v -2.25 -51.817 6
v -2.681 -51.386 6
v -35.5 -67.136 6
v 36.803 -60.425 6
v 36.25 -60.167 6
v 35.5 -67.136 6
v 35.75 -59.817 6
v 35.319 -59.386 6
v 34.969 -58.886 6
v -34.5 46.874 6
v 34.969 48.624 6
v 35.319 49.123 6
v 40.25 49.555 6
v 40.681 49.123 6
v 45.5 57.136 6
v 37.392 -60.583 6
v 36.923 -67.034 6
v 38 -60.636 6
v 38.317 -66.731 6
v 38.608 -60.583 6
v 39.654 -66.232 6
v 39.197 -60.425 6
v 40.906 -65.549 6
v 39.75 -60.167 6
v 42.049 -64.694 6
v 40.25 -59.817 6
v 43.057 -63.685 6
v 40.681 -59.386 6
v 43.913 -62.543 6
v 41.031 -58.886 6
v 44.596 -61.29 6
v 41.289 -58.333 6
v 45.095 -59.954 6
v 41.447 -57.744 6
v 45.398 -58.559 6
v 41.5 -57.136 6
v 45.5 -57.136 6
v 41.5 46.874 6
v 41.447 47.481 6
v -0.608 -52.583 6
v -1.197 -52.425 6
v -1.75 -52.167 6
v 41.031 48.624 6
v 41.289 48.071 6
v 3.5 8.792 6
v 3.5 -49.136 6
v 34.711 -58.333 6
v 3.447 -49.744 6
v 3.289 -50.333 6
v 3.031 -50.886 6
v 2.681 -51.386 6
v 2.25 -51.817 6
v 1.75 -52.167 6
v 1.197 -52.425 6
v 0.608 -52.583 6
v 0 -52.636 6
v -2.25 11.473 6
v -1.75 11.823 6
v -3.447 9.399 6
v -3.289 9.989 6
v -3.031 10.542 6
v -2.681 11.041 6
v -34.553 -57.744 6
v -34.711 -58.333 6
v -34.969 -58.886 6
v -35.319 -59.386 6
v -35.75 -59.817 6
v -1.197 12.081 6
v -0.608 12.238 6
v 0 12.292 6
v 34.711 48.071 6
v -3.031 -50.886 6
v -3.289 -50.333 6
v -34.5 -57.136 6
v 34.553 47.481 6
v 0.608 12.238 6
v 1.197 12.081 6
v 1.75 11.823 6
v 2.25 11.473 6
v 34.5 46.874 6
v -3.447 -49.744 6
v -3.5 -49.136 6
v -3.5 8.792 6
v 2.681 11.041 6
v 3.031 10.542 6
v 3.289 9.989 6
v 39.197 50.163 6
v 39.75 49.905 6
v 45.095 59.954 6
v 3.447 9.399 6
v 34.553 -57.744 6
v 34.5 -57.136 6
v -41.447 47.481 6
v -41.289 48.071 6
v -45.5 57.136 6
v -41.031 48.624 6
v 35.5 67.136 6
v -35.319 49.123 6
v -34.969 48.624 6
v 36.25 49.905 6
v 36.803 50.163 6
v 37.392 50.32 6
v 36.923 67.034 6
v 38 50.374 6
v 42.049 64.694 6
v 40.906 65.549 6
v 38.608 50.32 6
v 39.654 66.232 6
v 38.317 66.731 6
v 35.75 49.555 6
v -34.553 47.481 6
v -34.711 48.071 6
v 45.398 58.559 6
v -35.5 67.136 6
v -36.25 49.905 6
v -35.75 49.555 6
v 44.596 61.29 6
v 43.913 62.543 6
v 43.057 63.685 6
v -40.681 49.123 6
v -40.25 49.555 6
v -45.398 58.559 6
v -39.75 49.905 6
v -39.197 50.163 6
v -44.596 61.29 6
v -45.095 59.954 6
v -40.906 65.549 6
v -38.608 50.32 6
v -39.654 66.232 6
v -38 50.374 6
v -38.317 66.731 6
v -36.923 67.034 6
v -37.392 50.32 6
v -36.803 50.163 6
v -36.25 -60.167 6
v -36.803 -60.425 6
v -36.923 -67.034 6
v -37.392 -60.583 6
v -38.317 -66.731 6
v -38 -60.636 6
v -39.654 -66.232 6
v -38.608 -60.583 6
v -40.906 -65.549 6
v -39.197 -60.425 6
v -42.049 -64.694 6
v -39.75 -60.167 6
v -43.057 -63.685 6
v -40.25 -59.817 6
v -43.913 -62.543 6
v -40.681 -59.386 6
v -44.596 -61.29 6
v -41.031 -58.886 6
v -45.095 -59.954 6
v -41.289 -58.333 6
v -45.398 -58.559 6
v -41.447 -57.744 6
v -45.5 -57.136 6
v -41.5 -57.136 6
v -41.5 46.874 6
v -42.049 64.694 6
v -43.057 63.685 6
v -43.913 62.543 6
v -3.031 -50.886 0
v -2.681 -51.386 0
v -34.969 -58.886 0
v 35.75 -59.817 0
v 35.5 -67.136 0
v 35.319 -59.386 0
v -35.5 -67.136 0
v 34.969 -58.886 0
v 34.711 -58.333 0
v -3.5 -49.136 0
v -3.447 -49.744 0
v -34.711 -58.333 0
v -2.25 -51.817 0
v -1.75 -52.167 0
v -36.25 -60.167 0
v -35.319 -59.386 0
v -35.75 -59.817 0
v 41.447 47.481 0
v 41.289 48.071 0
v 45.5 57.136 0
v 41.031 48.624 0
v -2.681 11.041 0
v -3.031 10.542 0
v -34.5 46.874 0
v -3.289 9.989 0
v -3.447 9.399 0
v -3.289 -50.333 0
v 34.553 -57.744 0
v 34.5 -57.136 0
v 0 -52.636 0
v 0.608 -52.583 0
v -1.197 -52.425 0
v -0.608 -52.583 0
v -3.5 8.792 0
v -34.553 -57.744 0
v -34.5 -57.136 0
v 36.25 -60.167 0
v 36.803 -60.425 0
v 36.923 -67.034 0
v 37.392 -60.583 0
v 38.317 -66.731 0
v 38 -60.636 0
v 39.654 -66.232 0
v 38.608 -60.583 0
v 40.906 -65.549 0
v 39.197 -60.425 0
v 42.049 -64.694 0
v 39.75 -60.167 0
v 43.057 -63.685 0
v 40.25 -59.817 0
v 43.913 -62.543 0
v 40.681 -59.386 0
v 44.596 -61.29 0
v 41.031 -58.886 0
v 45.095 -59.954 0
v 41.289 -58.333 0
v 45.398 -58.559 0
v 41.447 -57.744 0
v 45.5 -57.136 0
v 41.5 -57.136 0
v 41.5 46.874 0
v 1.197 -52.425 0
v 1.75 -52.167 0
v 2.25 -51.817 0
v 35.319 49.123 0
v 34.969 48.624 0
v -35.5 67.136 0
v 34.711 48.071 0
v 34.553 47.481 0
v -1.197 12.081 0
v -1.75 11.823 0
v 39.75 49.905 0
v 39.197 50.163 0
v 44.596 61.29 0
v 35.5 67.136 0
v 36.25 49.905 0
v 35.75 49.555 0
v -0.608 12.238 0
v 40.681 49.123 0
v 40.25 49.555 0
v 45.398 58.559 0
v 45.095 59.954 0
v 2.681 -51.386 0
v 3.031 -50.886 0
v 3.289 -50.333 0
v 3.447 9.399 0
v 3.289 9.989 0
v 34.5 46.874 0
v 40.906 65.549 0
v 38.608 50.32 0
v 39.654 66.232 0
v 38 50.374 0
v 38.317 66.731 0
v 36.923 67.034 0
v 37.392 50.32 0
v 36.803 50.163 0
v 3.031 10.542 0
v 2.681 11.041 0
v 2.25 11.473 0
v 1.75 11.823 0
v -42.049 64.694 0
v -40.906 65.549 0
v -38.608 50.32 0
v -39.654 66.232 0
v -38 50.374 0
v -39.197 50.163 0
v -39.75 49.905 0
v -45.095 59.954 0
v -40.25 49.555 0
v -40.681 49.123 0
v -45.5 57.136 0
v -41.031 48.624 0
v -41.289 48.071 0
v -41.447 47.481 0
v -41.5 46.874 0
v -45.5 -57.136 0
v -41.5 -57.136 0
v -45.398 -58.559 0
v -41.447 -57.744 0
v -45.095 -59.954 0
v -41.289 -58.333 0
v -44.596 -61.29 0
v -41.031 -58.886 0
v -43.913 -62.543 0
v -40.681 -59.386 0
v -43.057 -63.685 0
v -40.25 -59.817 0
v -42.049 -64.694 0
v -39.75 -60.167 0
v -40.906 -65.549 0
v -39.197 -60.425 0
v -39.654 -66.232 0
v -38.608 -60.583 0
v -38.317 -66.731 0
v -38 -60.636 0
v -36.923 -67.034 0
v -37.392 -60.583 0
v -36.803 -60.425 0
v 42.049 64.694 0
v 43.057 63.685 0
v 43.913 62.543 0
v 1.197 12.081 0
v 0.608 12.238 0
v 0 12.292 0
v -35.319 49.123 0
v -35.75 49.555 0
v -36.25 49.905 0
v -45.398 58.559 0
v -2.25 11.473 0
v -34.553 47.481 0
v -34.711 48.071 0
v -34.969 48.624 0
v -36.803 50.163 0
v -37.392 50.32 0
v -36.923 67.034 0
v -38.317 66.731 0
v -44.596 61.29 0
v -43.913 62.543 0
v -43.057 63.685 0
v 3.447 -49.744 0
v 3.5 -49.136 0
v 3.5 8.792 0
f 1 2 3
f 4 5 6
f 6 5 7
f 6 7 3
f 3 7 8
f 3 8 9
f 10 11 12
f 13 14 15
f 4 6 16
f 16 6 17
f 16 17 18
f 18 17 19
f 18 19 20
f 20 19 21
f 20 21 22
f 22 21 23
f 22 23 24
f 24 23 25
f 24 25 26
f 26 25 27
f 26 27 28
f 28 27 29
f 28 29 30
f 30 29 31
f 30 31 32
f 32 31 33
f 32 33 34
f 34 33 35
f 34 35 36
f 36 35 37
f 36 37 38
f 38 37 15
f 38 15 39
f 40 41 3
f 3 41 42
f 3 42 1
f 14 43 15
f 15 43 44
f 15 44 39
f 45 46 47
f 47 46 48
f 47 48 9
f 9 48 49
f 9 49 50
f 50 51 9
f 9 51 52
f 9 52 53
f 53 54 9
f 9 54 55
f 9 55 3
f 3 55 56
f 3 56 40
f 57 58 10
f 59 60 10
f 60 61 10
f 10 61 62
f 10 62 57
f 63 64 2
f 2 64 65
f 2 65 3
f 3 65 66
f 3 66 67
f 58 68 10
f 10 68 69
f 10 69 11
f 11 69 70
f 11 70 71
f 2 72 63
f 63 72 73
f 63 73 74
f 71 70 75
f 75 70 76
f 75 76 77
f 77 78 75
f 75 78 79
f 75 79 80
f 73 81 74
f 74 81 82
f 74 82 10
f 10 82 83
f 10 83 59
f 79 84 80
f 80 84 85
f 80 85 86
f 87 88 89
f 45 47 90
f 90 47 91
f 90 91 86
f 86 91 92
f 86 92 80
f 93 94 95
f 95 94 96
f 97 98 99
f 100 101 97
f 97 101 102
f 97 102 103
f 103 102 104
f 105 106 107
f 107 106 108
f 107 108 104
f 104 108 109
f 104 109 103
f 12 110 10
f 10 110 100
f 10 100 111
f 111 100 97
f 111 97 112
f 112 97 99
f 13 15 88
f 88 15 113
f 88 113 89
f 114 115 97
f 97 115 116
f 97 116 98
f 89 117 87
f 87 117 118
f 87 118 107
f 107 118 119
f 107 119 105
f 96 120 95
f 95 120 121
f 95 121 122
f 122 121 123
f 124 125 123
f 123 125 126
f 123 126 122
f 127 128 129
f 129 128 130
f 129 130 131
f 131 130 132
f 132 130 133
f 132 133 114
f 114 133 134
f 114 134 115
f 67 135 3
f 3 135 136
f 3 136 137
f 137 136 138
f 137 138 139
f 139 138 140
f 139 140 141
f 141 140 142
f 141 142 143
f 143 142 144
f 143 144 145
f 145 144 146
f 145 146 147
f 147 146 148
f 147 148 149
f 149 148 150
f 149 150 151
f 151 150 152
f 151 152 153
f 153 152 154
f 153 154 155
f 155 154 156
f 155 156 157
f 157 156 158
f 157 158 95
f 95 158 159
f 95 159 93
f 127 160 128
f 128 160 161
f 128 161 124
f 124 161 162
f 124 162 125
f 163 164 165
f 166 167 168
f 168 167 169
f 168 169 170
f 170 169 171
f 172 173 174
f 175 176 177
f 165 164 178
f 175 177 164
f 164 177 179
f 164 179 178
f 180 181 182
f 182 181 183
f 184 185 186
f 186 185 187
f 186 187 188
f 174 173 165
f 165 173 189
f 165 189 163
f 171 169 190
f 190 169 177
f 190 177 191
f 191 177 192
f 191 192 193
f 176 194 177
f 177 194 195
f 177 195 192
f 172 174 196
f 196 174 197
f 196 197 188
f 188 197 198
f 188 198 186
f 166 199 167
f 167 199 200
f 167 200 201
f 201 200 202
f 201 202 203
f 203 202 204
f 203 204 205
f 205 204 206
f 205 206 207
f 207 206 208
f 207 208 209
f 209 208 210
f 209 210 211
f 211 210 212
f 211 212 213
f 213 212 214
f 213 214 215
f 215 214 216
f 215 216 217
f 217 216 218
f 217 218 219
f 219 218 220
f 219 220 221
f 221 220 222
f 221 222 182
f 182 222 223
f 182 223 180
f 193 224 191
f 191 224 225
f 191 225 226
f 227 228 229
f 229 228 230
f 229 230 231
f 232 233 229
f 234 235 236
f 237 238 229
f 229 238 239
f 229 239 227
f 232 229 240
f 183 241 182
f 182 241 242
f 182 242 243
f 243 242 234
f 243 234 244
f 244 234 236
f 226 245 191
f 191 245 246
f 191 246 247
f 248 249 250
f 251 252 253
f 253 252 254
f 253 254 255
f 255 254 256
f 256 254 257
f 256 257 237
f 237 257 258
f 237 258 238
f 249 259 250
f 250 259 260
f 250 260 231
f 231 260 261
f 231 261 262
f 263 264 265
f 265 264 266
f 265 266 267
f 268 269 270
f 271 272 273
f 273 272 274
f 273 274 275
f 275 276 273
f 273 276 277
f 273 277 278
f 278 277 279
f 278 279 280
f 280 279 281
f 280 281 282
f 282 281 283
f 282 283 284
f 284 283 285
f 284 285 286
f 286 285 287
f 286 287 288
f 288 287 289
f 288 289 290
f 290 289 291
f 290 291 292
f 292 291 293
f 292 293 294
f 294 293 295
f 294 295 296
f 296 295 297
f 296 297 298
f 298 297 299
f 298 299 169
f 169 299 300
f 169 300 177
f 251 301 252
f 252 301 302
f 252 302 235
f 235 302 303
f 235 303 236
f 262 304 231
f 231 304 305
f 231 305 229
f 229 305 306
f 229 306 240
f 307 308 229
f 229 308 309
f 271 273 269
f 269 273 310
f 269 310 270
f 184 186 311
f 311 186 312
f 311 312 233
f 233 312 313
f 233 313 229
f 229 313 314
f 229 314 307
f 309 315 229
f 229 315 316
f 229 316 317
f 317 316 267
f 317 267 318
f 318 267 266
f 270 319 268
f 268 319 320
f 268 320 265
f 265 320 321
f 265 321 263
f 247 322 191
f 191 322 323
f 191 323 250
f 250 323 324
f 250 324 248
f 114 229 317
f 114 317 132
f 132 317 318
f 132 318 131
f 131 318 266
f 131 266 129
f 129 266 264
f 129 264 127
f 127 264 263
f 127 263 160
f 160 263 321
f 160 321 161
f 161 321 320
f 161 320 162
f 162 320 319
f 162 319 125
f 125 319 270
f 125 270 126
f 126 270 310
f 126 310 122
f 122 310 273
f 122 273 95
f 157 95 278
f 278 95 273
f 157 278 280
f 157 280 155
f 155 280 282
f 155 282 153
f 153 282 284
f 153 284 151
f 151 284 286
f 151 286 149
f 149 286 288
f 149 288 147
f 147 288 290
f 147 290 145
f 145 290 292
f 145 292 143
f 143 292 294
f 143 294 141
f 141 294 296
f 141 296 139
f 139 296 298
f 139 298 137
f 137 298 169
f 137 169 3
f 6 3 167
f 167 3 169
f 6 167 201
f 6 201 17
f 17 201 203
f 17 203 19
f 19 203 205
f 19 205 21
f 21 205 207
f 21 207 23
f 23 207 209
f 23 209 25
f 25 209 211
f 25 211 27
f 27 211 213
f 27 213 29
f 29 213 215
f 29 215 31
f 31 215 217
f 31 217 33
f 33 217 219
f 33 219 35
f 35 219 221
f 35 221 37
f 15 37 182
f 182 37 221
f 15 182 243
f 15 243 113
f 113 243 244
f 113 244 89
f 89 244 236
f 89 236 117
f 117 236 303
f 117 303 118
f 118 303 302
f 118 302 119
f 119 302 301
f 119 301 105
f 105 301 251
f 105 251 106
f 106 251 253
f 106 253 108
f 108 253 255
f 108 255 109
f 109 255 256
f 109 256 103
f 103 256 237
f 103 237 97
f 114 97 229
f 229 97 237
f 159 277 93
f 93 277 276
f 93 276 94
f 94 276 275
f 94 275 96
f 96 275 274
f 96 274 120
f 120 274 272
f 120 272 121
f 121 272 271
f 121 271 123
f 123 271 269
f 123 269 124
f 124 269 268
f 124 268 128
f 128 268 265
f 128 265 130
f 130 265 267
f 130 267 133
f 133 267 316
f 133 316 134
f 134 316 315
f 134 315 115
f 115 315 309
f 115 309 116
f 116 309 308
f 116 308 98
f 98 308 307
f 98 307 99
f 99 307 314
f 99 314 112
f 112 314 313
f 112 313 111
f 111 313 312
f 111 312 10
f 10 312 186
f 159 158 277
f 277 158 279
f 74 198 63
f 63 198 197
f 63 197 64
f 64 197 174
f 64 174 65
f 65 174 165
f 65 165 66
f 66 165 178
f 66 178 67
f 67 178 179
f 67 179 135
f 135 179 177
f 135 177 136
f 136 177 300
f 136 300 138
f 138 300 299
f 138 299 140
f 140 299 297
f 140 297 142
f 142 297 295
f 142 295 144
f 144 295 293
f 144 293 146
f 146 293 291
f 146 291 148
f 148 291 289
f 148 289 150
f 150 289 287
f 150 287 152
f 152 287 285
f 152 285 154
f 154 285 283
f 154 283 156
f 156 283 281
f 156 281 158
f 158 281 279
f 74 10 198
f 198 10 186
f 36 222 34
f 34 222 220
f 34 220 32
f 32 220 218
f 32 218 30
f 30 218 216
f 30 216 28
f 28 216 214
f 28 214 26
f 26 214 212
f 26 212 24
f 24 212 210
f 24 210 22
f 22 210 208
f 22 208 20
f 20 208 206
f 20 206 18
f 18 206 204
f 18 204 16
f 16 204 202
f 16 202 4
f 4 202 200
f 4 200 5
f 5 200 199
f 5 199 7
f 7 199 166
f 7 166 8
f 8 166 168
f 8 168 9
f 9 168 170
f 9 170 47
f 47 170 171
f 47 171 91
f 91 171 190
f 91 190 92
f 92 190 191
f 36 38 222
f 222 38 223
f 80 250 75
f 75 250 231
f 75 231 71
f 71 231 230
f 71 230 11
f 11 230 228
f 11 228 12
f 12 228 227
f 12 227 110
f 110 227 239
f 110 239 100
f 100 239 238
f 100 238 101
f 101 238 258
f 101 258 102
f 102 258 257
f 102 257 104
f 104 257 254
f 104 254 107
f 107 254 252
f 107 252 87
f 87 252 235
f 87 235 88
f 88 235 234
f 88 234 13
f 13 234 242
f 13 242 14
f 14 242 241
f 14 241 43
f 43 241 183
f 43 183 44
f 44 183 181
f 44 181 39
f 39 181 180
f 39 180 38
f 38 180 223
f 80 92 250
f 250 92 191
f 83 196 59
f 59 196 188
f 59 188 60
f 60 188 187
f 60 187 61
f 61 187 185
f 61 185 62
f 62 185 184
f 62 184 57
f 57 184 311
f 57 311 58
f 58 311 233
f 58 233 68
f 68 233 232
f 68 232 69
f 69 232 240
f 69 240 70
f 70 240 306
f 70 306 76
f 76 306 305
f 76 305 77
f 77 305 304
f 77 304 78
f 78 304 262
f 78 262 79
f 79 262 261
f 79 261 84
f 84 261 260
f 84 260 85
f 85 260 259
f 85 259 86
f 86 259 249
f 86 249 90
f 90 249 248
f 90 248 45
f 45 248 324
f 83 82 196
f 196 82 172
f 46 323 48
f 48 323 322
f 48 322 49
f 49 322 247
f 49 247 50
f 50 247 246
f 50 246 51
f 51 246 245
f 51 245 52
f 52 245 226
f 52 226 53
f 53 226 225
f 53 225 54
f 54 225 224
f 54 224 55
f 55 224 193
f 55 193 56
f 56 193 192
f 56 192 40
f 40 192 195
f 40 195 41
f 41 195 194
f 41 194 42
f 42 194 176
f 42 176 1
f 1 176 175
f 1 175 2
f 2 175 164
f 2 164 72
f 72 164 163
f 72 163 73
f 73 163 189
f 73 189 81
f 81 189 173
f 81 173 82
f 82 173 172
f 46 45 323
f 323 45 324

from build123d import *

# Parameters (mm, degrees)
BOSS_EXTRUDE1_DEPTH = 6


with BuildPart() as part:
    # Sketch1 → Boss-Extrude1 (new body)
    with BuildSketch(Plane.XY):
        with BuildLine():
            Line((-35.5, -67.136177844), (35.5, -67.136177844))
            ThreePointArc((35.5, -67.136177844), (42.571067812, -64.207245656), (45.5, -57.136177844))
            Line((45.5, -57.136177844), (45.5, 57.136177844))
            ThreePointArc((45.5, 57.136177844), (42.571067812, 64.207245656), (35.5, 67.136177844))
            Line((35.5, 67.136177844), (-35.5, 67.136177844))
            ThreePointArc((-35.5, 67.136177844), (-42.571067812, 64.207245656), (-45.5, 57.136177844))
            Line((-45.5, 57.136177844), (-45.5, -57.136177844))
            ThreePointArc((-45.5, -57.136177844), (-42.571067812, -64.207245656), (-35.5, -67.136177844))
        make_face()
        with BuildLine():
            Line((-34.5, 46.873645637), (-34.5, -57.136177844))
            ThreePointArc((-34.5, -57.136177844), (-38, -60.636177844), (-41.5, -57.136177844))
            Line((-41.5, -57.136177844), (-41.5, 46.873645637))
            ThreePointArc((-41.5, 46.873645637), (-38, 50.373645637), (-34.5, 46.873645637))
        make_face(mode=Mode.SUBTRACT)
        with BuildLine():
            Line((34.5, -57.136177844), (34.5, 46.873645637))
            ThreePointArc((34.5, 46.873645637), (38, 50.373645637), (41.5, 46.873645637))
            Line((41.5, 46.873645637), (41.5, -57.136177844))
            ThreePointArc((41.5, -57.136177844), (38, -60.636177844), (34.5, -57.136177844))
        make_face(mode=Mode.SUBTRACT)
        with BuildLine():
            Line((3.5, 8.791581559), (3.5, -49.136177844))
            ThreePointArc((3.5, -49.136177844), (0, -52.636177844), (-3.5, -49.136177844))
            Line((-3.5, -49.136177844), (-3.5, 8.791581559))
            ThreePointArc((-3.5, 8.791581559), (0, 12.291581559), (3.5, 8.791581559))
        make_face(mode=Mode.SUBTRACT)
    extrude(amount=BOSS_EXTRUDE1_DEPTH)


solid = part.part
